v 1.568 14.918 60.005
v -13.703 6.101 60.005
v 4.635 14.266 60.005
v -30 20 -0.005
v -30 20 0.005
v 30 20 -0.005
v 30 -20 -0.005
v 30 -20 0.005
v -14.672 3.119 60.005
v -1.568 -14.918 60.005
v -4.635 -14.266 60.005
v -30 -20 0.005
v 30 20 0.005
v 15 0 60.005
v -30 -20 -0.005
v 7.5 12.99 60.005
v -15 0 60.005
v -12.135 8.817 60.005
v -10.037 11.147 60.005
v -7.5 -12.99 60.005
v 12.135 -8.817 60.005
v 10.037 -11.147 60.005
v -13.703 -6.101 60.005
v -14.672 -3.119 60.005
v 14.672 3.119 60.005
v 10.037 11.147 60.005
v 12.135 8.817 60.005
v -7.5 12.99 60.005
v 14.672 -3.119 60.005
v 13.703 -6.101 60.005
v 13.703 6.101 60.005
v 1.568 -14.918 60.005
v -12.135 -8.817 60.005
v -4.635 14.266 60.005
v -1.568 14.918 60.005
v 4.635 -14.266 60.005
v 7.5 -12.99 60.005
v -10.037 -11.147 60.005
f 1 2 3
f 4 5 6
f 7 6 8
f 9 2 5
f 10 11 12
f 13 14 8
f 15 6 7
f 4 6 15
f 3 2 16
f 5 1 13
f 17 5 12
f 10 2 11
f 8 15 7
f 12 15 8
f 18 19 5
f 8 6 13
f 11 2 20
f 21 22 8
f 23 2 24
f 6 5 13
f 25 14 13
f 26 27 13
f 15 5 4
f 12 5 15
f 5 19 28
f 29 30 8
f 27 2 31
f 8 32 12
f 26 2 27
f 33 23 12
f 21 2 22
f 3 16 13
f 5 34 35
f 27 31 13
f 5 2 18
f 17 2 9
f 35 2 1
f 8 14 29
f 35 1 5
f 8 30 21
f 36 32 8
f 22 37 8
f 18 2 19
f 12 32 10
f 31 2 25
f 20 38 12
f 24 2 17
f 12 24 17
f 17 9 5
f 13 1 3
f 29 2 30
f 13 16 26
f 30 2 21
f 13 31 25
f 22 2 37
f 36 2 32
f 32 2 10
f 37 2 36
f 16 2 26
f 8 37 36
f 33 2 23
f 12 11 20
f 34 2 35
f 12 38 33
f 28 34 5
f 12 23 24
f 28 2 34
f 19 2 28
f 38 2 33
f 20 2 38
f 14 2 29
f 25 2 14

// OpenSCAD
/* doodle-meta {"version":1,"parameters":{"base_width":{"label":"Base Width","description":"Width of the rectangular base along X","unit":"mm","feature":"base_width"},"base_depth":{"label":"Base Depth","description":"Depth of the rectangular base along Y","unit":"mm","feature":"base_depth"},"top_diameter":{"label":"Top Diameter","description":"Diameter of the circular top","unit":"mm","feature":"top_diameter"},"height":{"label":"Height","description":"Overall height of the transition piece","unit":"mm","feature":"height"}},"features":{"base_width":{"kind":"dimension","axis":"x","label":"Base Width"},"base_depth":{"kind":"dimension","axis":"y","label":"Base Depth"},"top_diameter":{"kind":"dimension","axis":"z","label":"Top Diameter"},"height":{"kind":"dimension","axis":"z","label":"Height"}}} */

// Parameters
base_width = 60.0;
base_depth = 40.0;
top_diameter = 30.0;
height = 60.0;

// Derived parameters
top_radius = top_diameter / 2.0;
base_half_w = base_width / 2.0;
base_half_d = base_depth / 2.0;

// Module for the lofted transition piece
module transition_piece() {
    // We create a loft by stacking thin slices.
    // To ensure watertightness and smoothness, we use a high number of slices.
    slices = 100;
    slice_height = height / slices;
    
    for (i = [0 : slices - 1]) {
        // Interpolation factor t from 0 (bottom) to 1 (top)
        t = i / (slices - 1);
        
        // Current Z position of the bottom of this slice
        z_pos = i * slice_height;
        
        // Interpolate dimensions
        // Width (X) tapers from base_width to top_diameter
        current_width = base_width * (1 - t) + top_diameter * t;
        // Depth (Y) tapers from base_depth to top_diameter
        current_depth = base_depth * (1 - t) + top_diameter * t;
        
        // Create a rounded rectangle (stadium-like) for the slice
        // To approximate the transition from rect to circle, we use a hull of a box and a cylinder
        // or simply a rounded box where the corner radius interpolates.
        // A simpler robust approach for rect-to-circle loft in OpenSCAD is using hull() between 
        // a box at the bottom and a cylinder at the top, but that creates a single solid.
        // However, hull() between a box and a cylinder creates a shape that is not exactly 
        // a linear interpolation of the cross-sections in the way a loft is, but it is often 
        // acceptable. 
        // For a true loft, we stack slices.
        
        // Let's use a rounded box approach for each slice.
        // The "roundness" increases as we go up.
        // At bottom (t=0), radius is 0 (sharp corners).
        // At top (t=1), it's a circle.
        
        // A better approximation for Rect -> Circle loft is to use a superellipse or 
        // simply hull() the bottom rectangle and top circle. 
        // hull() is the most robust way to get a smooth transition in OpenSCAD without complex math.
        
        // Let's stick to the hull method as it guarantees manifold geometry and smooth transitions.
    }
    
    // Using hull() is the standard OpenSCAD way to loft between two shapes.
    // Shape 1: Rectangular base at Z=0
    // Shape 2: Circular top at Z=height
    
    hull() {
        // Base: Rectangular prism
        translate([0, 0, 0])
            cube([base_width, base_depth, 0.01], center=true);
            
        // Top: Cylindrical prism
        translate([0, 0, height])
            cylinder(h=0.01, r=top_radius, center=true);
    }
}

// Instantiate the design
transition_piece();
